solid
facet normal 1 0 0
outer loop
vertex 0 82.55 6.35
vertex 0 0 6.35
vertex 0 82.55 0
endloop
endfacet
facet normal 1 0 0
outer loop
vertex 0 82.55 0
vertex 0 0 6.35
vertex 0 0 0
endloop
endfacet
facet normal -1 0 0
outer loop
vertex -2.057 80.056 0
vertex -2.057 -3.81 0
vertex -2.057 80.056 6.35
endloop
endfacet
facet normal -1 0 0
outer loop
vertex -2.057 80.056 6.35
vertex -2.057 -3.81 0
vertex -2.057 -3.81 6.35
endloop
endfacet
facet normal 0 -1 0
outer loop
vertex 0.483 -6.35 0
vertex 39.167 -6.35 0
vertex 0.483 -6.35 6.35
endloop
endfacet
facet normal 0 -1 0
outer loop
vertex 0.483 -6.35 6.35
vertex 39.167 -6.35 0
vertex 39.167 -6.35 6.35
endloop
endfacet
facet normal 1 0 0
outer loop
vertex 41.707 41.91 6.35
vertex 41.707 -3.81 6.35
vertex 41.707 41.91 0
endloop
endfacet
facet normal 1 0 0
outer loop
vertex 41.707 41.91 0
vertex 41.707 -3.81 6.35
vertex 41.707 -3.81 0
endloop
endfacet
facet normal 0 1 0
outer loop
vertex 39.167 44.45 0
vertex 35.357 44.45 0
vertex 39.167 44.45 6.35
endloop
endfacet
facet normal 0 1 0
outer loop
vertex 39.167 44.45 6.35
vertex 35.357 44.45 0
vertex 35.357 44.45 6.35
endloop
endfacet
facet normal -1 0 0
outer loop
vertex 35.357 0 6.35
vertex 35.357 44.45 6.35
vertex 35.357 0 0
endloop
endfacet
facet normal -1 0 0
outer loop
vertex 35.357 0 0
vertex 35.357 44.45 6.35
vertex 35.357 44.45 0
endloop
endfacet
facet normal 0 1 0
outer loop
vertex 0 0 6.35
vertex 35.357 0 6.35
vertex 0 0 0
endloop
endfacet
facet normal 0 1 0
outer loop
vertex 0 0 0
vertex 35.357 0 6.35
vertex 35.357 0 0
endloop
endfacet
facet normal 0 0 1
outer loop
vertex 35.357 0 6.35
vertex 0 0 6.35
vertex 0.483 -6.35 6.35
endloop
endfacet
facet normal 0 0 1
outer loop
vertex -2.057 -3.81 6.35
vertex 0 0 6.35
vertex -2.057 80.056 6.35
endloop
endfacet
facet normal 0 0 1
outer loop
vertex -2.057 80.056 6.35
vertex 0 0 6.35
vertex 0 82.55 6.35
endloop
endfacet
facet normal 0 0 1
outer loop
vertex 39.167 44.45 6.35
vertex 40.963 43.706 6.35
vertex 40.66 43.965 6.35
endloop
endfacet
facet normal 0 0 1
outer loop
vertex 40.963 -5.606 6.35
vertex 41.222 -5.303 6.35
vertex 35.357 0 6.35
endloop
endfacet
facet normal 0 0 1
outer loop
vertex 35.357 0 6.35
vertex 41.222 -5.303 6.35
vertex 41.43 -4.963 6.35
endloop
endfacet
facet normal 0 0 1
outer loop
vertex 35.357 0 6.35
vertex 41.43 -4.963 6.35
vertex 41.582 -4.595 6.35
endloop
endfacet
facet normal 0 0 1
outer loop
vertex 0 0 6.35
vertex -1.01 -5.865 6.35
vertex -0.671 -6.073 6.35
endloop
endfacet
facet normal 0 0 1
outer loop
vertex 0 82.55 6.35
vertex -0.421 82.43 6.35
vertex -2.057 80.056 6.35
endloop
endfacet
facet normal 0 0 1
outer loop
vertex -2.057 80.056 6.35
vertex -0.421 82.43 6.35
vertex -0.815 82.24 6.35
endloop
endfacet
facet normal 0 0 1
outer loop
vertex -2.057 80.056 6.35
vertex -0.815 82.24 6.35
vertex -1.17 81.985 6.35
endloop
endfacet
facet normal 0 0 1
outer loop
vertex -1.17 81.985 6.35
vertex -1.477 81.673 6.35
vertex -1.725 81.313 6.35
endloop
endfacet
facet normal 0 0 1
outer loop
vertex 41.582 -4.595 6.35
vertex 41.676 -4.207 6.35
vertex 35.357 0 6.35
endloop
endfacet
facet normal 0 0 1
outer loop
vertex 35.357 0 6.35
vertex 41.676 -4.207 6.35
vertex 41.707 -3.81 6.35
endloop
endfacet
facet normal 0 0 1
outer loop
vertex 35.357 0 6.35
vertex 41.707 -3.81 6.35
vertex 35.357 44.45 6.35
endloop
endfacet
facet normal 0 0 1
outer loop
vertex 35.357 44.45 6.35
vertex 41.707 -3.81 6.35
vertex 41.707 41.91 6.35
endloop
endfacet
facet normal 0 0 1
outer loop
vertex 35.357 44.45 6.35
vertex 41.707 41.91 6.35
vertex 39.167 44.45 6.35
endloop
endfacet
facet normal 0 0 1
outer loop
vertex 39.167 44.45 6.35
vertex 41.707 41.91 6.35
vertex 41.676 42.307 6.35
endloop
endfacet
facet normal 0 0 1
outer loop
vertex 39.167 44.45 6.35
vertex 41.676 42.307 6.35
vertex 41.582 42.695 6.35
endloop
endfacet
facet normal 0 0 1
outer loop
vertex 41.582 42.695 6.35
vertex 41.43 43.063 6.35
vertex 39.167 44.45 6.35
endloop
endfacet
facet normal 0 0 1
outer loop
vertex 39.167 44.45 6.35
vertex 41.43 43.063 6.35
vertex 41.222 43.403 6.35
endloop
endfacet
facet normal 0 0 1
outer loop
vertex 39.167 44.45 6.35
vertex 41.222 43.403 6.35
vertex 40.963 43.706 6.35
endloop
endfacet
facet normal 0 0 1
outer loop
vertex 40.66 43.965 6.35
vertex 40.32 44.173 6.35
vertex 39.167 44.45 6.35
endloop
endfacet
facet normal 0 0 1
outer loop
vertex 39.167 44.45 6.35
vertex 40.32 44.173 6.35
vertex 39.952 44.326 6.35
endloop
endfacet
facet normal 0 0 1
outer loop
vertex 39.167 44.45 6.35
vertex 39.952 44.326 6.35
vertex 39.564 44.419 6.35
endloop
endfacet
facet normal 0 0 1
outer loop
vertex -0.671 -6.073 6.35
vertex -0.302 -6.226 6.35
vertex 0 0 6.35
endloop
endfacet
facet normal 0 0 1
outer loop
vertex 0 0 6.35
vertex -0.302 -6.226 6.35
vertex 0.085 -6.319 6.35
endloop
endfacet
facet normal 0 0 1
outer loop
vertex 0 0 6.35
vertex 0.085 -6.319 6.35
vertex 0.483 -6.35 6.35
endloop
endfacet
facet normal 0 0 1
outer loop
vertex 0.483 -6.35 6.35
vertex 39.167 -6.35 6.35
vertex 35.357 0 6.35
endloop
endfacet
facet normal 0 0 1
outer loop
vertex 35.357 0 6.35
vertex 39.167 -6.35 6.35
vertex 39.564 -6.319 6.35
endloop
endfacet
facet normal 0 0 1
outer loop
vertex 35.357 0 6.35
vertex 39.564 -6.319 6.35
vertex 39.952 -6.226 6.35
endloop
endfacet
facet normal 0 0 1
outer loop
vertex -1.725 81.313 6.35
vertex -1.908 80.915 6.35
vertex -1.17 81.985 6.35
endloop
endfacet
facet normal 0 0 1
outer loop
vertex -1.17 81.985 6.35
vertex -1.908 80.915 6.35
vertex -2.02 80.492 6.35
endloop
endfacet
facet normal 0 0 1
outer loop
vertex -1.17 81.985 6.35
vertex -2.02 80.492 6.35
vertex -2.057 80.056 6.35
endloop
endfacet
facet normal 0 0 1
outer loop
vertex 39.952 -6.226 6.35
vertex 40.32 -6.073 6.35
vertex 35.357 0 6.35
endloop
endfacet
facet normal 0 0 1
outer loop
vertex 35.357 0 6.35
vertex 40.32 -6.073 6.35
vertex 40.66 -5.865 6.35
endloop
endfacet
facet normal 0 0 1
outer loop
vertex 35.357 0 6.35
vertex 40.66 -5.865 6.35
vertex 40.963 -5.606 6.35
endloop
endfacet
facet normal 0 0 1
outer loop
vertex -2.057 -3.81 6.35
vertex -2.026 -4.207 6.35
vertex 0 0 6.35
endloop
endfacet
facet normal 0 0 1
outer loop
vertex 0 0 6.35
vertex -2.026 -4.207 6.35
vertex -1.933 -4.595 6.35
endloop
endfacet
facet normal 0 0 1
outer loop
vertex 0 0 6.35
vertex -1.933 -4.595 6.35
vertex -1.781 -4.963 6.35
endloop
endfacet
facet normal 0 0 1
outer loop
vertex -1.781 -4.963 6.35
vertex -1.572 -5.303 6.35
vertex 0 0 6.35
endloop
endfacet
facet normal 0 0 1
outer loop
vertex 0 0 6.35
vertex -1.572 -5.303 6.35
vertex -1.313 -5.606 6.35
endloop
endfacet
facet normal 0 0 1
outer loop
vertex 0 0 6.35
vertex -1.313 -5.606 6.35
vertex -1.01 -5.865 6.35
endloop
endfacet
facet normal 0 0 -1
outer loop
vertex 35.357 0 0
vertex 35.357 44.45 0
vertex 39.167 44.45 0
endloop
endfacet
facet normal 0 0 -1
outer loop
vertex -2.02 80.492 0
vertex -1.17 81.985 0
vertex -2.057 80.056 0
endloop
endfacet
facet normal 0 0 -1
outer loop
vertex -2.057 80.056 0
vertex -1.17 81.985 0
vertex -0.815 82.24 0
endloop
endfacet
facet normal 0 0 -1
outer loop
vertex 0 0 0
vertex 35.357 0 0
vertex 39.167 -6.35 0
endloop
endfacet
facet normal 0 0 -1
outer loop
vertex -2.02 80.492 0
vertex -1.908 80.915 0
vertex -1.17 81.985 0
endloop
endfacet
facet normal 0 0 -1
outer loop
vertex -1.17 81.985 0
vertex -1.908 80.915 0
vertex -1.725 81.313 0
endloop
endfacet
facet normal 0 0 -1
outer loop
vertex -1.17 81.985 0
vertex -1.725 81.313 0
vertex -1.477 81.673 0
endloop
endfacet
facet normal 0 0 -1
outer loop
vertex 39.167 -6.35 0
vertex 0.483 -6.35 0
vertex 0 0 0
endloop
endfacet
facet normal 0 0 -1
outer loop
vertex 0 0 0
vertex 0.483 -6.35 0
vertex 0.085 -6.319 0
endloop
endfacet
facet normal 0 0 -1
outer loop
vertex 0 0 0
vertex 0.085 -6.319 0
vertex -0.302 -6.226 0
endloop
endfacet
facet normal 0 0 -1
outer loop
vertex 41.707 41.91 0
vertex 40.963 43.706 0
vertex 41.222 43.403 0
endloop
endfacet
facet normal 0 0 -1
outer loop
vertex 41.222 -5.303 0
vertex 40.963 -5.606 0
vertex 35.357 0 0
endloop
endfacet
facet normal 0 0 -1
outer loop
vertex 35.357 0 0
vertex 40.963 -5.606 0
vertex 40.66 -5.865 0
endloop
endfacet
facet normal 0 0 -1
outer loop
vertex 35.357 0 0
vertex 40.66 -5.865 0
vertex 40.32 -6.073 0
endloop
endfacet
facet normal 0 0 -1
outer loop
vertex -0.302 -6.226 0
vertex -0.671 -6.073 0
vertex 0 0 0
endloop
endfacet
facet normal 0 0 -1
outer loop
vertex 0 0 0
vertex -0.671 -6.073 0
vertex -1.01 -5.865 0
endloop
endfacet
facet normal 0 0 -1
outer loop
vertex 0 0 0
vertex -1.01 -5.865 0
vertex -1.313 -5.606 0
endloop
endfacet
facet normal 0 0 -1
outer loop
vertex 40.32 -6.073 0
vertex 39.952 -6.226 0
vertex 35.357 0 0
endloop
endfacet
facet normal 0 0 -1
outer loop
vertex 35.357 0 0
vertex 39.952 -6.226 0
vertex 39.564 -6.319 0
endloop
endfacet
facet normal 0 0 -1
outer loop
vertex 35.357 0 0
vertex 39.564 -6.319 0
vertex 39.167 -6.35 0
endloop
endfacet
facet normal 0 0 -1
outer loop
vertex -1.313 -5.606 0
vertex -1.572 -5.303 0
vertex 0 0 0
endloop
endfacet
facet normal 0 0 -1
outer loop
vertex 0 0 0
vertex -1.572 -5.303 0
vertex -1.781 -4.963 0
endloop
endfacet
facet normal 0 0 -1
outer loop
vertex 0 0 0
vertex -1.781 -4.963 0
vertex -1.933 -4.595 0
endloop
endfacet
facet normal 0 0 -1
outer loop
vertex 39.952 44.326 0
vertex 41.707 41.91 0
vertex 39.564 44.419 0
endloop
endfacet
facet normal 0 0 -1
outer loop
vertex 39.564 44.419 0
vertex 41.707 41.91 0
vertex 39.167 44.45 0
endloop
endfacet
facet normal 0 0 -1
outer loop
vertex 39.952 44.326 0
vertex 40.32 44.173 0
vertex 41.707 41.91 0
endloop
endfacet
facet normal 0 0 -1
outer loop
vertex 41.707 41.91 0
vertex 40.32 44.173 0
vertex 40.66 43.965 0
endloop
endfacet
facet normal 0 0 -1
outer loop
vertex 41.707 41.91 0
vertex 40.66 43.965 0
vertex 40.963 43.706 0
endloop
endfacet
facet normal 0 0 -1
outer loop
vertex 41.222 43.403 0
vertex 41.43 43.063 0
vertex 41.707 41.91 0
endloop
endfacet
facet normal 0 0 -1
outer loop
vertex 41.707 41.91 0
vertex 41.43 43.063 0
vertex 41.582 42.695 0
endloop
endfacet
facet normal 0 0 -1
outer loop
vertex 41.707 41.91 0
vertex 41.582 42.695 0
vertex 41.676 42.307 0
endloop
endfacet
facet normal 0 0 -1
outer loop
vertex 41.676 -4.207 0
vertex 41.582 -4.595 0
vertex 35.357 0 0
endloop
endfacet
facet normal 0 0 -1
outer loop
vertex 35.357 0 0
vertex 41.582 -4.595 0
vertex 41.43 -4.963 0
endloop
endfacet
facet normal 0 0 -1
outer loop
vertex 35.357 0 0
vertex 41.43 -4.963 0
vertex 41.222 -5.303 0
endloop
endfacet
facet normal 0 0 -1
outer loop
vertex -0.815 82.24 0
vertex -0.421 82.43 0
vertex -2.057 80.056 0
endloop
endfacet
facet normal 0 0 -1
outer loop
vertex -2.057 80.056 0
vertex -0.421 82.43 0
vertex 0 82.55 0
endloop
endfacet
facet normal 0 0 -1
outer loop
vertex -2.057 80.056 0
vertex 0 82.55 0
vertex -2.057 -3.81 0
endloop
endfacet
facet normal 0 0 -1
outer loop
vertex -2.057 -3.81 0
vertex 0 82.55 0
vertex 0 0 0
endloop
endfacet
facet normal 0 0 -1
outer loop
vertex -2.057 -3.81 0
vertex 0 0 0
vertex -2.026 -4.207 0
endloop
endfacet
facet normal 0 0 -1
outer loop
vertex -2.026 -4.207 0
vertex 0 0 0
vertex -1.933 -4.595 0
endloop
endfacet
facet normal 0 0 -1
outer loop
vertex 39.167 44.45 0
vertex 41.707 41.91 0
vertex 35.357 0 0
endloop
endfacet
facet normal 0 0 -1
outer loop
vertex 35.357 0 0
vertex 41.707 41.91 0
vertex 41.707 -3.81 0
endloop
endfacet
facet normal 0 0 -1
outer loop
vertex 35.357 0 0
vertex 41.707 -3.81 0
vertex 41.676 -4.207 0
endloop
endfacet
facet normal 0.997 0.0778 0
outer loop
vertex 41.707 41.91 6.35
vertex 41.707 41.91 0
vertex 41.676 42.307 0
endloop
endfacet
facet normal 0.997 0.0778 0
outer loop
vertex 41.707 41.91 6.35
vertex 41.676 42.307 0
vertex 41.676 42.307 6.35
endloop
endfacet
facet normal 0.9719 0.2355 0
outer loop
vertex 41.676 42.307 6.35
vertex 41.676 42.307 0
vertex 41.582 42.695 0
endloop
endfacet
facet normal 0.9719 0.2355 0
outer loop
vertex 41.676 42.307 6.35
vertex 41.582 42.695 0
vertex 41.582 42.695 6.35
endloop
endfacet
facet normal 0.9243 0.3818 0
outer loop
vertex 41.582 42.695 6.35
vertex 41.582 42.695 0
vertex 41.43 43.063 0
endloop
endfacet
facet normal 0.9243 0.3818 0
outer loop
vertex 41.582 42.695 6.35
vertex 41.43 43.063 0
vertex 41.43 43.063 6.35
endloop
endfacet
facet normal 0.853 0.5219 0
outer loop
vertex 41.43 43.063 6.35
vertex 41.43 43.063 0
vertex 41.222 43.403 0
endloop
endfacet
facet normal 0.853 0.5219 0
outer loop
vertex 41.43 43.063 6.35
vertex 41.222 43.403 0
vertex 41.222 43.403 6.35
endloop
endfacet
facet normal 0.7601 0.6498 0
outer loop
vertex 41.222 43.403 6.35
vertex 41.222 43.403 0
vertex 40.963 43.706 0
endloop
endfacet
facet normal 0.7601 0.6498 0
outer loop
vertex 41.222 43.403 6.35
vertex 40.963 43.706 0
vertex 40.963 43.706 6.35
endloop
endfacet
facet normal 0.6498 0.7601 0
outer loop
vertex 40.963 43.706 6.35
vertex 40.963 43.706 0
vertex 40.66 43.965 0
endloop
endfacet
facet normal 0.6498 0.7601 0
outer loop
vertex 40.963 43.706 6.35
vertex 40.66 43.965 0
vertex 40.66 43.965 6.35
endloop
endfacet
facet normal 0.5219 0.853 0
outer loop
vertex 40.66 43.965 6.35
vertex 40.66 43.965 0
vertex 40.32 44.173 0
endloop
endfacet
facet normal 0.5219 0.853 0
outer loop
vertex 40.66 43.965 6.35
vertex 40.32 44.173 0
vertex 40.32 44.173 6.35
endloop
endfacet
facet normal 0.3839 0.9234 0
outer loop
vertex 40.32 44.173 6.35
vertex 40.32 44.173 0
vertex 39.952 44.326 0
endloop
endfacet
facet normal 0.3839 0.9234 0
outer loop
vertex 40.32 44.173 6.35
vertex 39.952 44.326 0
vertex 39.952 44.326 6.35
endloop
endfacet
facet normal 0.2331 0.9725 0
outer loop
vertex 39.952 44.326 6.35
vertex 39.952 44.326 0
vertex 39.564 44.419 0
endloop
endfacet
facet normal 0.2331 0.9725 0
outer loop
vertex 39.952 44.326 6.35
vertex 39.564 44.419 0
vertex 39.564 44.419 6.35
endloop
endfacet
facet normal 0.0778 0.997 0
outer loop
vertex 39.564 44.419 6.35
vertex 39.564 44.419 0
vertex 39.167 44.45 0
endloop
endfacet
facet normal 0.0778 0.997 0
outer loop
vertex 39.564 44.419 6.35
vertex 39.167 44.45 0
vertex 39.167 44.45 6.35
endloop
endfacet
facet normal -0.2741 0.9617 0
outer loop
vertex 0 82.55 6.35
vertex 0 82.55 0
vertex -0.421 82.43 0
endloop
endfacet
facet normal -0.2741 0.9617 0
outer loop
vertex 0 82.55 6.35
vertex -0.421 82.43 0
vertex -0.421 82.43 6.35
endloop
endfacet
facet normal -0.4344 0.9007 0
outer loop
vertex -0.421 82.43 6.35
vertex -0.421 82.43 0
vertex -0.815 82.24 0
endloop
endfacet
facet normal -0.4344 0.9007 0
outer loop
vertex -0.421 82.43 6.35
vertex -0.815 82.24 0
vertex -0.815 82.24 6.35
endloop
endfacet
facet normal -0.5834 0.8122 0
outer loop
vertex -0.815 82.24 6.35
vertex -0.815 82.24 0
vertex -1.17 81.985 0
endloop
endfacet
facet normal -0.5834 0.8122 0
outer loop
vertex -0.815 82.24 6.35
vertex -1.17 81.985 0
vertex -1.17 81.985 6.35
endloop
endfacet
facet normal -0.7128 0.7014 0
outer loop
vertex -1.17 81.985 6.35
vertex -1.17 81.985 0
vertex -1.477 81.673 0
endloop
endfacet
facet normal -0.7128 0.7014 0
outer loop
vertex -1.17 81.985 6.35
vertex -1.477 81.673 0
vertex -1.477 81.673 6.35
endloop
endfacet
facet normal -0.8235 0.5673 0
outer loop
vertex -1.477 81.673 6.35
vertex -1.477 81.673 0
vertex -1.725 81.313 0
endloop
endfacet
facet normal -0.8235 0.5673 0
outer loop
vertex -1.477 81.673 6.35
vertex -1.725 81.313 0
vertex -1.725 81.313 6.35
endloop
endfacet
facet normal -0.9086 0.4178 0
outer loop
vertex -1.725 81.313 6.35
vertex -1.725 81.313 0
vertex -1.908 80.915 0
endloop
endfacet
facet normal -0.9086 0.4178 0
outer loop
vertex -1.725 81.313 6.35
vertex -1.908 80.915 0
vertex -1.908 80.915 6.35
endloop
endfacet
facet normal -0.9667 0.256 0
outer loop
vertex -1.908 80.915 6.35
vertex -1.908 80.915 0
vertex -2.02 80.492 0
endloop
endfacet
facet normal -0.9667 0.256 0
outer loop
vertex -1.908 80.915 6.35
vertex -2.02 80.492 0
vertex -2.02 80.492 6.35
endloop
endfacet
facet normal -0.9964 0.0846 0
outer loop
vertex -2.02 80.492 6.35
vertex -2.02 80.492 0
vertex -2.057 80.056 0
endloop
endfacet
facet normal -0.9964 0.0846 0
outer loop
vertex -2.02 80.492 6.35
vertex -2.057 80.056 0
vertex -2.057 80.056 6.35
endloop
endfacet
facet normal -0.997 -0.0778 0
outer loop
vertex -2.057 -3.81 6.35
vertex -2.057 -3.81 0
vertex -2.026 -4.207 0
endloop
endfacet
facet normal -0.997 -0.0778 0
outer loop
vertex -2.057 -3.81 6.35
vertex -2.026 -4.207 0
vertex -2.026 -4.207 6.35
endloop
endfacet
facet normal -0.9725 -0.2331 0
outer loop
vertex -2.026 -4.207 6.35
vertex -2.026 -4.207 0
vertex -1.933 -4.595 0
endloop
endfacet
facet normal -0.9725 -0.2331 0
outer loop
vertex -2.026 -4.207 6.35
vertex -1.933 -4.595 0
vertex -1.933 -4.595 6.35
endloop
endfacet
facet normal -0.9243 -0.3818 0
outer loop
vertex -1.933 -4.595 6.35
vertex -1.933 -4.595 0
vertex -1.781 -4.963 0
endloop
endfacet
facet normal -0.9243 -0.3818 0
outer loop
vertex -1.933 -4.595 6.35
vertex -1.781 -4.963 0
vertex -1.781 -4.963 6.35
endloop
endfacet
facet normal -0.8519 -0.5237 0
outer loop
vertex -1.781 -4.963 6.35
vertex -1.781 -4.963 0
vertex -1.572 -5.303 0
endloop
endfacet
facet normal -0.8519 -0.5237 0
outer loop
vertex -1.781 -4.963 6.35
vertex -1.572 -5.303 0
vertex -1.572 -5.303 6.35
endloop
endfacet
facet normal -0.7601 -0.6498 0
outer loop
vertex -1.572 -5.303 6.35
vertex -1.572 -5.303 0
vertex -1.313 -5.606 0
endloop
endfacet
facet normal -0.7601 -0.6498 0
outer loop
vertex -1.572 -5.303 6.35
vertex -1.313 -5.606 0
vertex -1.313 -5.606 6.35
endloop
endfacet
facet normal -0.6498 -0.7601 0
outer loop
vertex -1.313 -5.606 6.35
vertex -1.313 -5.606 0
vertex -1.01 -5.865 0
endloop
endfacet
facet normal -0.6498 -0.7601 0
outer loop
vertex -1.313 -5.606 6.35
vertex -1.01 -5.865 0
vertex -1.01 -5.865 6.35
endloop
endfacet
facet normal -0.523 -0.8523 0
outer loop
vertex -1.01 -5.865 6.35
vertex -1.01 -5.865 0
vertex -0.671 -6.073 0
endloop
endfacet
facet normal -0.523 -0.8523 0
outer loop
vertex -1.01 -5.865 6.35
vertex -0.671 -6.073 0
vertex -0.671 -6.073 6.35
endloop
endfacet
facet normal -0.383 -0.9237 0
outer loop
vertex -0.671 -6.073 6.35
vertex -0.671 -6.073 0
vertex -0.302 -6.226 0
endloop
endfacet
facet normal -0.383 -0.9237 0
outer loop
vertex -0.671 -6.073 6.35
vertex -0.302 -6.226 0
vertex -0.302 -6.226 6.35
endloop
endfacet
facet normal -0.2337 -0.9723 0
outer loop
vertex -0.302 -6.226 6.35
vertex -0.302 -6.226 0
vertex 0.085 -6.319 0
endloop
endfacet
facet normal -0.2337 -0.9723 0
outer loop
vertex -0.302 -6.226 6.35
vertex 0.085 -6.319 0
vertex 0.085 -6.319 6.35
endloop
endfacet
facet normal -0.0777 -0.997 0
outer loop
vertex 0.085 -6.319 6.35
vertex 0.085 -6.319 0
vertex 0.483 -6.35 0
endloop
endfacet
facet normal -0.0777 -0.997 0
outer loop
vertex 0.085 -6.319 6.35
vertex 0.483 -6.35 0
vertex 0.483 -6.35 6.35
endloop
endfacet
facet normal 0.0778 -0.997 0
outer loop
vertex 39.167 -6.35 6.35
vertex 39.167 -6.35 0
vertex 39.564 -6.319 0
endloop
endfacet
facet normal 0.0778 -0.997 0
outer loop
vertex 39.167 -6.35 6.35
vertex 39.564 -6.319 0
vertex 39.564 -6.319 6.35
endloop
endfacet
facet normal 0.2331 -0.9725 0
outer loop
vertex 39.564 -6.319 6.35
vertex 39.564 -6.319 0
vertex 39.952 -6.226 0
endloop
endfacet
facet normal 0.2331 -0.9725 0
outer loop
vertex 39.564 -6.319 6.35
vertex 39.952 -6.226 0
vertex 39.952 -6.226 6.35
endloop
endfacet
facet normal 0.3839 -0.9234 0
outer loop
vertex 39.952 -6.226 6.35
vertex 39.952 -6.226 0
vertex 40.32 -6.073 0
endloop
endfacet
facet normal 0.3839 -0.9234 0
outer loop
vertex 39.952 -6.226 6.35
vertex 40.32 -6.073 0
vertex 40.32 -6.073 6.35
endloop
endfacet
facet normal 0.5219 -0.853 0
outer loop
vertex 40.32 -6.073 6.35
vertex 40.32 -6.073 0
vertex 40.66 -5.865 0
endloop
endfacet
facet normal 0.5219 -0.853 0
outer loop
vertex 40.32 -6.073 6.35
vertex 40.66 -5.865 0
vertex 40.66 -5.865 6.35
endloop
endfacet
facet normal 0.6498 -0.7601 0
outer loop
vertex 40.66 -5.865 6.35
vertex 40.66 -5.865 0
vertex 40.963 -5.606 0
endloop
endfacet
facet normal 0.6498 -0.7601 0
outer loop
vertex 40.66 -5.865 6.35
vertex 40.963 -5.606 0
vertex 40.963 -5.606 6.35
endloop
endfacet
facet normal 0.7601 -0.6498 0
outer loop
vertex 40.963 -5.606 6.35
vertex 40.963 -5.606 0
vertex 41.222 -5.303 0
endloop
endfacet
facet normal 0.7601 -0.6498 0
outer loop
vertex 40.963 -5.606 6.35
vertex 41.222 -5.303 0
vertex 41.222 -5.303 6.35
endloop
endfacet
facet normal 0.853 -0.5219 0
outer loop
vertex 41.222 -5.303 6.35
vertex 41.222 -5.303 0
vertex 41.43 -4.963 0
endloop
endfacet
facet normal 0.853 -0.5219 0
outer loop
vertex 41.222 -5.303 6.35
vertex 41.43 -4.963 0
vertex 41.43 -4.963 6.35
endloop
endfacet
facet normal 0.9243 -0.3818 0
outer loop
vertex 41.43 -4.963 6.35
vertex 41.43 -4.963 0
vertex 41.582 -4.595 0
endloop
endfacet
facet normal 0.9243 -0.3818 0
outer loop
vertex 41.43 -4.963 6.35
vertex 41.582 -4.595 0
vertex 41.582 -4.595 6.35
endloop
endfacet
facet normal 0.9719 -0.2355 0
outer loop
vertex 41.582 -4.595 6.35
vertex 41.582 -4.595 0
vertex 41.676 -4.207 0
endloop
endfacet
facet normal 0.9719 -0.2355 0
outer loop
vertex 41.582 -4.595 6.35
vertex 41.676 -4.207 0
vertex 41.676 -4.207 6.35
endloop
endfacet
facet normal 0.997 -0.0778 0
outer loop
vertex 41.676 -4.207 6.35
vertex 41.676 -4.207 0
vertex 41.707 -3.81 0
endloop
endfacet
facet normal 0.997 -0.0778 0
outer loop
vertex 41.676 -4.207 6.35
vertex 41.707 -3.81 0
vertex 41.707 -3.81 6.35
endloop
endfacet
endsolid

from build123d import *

# Parameters (mm, degrees)
BOSS_EXTRUDE1_DEPTH = 6.35
FILLET1_R           = 2.54


with BuildPart() as part:
    # Sketch1 → Boss-Extrude1 (new body)
    with BuildSketch(Plane.XY):
        Polygon((0, 0), (35.3568, 0), (35.3568, 44.45), (41.7068, 44.45), (41.7068, -6.35), (-2.0574, -6.35), (-2.0574, 82.55), (0, 82.55), align=None)
    extrude(amount=BOSS_EXTRUDE1_DEPTH)

    # Fillet1
    # the kernel refuses this fillet: 2.54 mm, written as the material it takes off along each edge
    with BuildSketch(Plane(origin=(41.7068, 44.45, -6.35), x_dir=(-1, 0, 0), z_dir=(0, 0, 1)), Plane(origin=(-2.0574, -6.35, -6.35), x_dir=(1, 0, 0), z_dir=(0, 0, 1)), Plane(origin=(41.7068, -6.35, -6.35), x_dir=(0, 1, 0), z_dir=(0, 0, 1))) as fillet1_piece_1:
        with BuildLine():
            CenterArc((FILLET1_R, FILLET1_R), FILLET1_R, 180, 90)
            Line((0, FILLET1_R), (-FILLET1_R * 0.02, FILLET1_R))
            Line((-FILLET1_R * 0.02, FILLET1_R), (-FILLET1_R * 0.02, -FILLET1_R * 0.02))
            Line((-FILLET1_R * 0.02, -FILLET1_R * 0.02), (FILLET1_R, -FILLET1_R * 0.02))
            Line((FILLET1_R, -FILLET1_R * 0.02), (FILLET1_R, 0))
        make_face()
    extrude(amount=19.05, mode=Mode.SUBTRACT)
    with BuildSketch(Plane(origin=(-2.0574, 82.55, -6.234328974), x_dir=(0, -1, 0), z_dir=(0, 0, 1))) as fillet1_piece_2:
        with BuildLine():
            CenterArc((2.493731589, 2.54), FILLET1_R, 190.952784199, 79.047215801)
            Line((0, 2.0574), (-0.049874632, 2.047748))
            ThreePointArc((-0.049874632, 2.047748), (-0.0508, 1.0287), (-0.0508, 0))
            Line((-0.0508, 0), (0, -0.0508))
            Line((0, -0.0508), (2.493731589, -0.0508))
            Line((2.493731589, -0.0508), (2.493731589, 0))
        make_face()
    extrude(amount=18.818657947, mode=Mode.SUBTRACT)


solid = part.part
